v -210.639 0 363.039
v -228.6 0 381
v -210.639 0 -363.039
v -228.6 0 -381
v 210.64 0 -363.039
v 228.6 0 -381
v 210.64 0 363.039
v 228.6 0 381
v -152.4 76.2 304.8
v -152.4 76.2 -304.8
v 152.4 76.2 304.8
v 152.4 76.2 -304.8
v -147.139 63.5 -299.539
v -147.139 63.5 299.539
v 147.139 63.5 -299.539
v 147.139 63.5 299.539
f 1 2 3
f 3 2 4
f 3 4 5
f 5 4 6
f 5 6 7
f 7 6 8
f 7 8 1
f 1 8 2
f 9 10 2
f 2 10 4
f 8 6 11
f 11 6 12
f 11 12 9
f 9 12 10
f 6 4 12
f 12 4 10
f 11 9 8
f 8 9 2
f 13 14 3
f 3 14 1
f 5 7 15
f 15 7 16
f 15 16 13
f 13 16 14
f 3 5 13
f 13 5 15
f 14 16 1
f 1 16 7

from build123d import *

# Parameters (mm, degrees)
BOSS_EXTRUDE1_DEPTH     = 381
CUT_EXTRUDE1_DEPTH      = 451.805279472
CUT_EXTRUDE1_DEPTH_BACK = 451.805279472
SHELL2_T                = -12.7


with BuildPart() as part:
    # Sketch1 → Boss-Extrude1 (new, symmetric)
    with BuildSketch(Plane.XY):
        Polygon((-228.6, 0), (228.6, 0), (152.4, 76.2), (-152.4, 76.2), align=None)
    extrude(amount=BOSS_EXTRUDE1_DEPTH, both=True)

    # Sketch2 → Cut-Extrude1 (cut, two sides: drawn at the far end of the back side and taken through both)
    with BuildSketch(Plane(origin=(0, 0, 0), x_dir=(0, 0, -1), z_dir=(1, 0, 0)).offset(-CUT_EXTRUDE1_DEPTH_BACK)):
        Polygon((-381, 0), (-381, 76.2), (-304.8, 76.2), align=None)
        Polygon((381, 0), (381, 76.2), (304.8, 76.2), align=None)
    extrude(amount=CUT_EXTRUDE1_DEPTH + CUT_EXTRUDE1_DEPTH_BACK, mode=Mode.SUBTRACT)

    # Shell2
    shell2_openings = [part.faces().sort_by_distance(p)[0] for p in [
        (0, 0, 0),
    ]]
    offset(amount=SHELL2_T, openings=shell2_openings, kind=Kind.INTERSECTION)


solid = part.part
